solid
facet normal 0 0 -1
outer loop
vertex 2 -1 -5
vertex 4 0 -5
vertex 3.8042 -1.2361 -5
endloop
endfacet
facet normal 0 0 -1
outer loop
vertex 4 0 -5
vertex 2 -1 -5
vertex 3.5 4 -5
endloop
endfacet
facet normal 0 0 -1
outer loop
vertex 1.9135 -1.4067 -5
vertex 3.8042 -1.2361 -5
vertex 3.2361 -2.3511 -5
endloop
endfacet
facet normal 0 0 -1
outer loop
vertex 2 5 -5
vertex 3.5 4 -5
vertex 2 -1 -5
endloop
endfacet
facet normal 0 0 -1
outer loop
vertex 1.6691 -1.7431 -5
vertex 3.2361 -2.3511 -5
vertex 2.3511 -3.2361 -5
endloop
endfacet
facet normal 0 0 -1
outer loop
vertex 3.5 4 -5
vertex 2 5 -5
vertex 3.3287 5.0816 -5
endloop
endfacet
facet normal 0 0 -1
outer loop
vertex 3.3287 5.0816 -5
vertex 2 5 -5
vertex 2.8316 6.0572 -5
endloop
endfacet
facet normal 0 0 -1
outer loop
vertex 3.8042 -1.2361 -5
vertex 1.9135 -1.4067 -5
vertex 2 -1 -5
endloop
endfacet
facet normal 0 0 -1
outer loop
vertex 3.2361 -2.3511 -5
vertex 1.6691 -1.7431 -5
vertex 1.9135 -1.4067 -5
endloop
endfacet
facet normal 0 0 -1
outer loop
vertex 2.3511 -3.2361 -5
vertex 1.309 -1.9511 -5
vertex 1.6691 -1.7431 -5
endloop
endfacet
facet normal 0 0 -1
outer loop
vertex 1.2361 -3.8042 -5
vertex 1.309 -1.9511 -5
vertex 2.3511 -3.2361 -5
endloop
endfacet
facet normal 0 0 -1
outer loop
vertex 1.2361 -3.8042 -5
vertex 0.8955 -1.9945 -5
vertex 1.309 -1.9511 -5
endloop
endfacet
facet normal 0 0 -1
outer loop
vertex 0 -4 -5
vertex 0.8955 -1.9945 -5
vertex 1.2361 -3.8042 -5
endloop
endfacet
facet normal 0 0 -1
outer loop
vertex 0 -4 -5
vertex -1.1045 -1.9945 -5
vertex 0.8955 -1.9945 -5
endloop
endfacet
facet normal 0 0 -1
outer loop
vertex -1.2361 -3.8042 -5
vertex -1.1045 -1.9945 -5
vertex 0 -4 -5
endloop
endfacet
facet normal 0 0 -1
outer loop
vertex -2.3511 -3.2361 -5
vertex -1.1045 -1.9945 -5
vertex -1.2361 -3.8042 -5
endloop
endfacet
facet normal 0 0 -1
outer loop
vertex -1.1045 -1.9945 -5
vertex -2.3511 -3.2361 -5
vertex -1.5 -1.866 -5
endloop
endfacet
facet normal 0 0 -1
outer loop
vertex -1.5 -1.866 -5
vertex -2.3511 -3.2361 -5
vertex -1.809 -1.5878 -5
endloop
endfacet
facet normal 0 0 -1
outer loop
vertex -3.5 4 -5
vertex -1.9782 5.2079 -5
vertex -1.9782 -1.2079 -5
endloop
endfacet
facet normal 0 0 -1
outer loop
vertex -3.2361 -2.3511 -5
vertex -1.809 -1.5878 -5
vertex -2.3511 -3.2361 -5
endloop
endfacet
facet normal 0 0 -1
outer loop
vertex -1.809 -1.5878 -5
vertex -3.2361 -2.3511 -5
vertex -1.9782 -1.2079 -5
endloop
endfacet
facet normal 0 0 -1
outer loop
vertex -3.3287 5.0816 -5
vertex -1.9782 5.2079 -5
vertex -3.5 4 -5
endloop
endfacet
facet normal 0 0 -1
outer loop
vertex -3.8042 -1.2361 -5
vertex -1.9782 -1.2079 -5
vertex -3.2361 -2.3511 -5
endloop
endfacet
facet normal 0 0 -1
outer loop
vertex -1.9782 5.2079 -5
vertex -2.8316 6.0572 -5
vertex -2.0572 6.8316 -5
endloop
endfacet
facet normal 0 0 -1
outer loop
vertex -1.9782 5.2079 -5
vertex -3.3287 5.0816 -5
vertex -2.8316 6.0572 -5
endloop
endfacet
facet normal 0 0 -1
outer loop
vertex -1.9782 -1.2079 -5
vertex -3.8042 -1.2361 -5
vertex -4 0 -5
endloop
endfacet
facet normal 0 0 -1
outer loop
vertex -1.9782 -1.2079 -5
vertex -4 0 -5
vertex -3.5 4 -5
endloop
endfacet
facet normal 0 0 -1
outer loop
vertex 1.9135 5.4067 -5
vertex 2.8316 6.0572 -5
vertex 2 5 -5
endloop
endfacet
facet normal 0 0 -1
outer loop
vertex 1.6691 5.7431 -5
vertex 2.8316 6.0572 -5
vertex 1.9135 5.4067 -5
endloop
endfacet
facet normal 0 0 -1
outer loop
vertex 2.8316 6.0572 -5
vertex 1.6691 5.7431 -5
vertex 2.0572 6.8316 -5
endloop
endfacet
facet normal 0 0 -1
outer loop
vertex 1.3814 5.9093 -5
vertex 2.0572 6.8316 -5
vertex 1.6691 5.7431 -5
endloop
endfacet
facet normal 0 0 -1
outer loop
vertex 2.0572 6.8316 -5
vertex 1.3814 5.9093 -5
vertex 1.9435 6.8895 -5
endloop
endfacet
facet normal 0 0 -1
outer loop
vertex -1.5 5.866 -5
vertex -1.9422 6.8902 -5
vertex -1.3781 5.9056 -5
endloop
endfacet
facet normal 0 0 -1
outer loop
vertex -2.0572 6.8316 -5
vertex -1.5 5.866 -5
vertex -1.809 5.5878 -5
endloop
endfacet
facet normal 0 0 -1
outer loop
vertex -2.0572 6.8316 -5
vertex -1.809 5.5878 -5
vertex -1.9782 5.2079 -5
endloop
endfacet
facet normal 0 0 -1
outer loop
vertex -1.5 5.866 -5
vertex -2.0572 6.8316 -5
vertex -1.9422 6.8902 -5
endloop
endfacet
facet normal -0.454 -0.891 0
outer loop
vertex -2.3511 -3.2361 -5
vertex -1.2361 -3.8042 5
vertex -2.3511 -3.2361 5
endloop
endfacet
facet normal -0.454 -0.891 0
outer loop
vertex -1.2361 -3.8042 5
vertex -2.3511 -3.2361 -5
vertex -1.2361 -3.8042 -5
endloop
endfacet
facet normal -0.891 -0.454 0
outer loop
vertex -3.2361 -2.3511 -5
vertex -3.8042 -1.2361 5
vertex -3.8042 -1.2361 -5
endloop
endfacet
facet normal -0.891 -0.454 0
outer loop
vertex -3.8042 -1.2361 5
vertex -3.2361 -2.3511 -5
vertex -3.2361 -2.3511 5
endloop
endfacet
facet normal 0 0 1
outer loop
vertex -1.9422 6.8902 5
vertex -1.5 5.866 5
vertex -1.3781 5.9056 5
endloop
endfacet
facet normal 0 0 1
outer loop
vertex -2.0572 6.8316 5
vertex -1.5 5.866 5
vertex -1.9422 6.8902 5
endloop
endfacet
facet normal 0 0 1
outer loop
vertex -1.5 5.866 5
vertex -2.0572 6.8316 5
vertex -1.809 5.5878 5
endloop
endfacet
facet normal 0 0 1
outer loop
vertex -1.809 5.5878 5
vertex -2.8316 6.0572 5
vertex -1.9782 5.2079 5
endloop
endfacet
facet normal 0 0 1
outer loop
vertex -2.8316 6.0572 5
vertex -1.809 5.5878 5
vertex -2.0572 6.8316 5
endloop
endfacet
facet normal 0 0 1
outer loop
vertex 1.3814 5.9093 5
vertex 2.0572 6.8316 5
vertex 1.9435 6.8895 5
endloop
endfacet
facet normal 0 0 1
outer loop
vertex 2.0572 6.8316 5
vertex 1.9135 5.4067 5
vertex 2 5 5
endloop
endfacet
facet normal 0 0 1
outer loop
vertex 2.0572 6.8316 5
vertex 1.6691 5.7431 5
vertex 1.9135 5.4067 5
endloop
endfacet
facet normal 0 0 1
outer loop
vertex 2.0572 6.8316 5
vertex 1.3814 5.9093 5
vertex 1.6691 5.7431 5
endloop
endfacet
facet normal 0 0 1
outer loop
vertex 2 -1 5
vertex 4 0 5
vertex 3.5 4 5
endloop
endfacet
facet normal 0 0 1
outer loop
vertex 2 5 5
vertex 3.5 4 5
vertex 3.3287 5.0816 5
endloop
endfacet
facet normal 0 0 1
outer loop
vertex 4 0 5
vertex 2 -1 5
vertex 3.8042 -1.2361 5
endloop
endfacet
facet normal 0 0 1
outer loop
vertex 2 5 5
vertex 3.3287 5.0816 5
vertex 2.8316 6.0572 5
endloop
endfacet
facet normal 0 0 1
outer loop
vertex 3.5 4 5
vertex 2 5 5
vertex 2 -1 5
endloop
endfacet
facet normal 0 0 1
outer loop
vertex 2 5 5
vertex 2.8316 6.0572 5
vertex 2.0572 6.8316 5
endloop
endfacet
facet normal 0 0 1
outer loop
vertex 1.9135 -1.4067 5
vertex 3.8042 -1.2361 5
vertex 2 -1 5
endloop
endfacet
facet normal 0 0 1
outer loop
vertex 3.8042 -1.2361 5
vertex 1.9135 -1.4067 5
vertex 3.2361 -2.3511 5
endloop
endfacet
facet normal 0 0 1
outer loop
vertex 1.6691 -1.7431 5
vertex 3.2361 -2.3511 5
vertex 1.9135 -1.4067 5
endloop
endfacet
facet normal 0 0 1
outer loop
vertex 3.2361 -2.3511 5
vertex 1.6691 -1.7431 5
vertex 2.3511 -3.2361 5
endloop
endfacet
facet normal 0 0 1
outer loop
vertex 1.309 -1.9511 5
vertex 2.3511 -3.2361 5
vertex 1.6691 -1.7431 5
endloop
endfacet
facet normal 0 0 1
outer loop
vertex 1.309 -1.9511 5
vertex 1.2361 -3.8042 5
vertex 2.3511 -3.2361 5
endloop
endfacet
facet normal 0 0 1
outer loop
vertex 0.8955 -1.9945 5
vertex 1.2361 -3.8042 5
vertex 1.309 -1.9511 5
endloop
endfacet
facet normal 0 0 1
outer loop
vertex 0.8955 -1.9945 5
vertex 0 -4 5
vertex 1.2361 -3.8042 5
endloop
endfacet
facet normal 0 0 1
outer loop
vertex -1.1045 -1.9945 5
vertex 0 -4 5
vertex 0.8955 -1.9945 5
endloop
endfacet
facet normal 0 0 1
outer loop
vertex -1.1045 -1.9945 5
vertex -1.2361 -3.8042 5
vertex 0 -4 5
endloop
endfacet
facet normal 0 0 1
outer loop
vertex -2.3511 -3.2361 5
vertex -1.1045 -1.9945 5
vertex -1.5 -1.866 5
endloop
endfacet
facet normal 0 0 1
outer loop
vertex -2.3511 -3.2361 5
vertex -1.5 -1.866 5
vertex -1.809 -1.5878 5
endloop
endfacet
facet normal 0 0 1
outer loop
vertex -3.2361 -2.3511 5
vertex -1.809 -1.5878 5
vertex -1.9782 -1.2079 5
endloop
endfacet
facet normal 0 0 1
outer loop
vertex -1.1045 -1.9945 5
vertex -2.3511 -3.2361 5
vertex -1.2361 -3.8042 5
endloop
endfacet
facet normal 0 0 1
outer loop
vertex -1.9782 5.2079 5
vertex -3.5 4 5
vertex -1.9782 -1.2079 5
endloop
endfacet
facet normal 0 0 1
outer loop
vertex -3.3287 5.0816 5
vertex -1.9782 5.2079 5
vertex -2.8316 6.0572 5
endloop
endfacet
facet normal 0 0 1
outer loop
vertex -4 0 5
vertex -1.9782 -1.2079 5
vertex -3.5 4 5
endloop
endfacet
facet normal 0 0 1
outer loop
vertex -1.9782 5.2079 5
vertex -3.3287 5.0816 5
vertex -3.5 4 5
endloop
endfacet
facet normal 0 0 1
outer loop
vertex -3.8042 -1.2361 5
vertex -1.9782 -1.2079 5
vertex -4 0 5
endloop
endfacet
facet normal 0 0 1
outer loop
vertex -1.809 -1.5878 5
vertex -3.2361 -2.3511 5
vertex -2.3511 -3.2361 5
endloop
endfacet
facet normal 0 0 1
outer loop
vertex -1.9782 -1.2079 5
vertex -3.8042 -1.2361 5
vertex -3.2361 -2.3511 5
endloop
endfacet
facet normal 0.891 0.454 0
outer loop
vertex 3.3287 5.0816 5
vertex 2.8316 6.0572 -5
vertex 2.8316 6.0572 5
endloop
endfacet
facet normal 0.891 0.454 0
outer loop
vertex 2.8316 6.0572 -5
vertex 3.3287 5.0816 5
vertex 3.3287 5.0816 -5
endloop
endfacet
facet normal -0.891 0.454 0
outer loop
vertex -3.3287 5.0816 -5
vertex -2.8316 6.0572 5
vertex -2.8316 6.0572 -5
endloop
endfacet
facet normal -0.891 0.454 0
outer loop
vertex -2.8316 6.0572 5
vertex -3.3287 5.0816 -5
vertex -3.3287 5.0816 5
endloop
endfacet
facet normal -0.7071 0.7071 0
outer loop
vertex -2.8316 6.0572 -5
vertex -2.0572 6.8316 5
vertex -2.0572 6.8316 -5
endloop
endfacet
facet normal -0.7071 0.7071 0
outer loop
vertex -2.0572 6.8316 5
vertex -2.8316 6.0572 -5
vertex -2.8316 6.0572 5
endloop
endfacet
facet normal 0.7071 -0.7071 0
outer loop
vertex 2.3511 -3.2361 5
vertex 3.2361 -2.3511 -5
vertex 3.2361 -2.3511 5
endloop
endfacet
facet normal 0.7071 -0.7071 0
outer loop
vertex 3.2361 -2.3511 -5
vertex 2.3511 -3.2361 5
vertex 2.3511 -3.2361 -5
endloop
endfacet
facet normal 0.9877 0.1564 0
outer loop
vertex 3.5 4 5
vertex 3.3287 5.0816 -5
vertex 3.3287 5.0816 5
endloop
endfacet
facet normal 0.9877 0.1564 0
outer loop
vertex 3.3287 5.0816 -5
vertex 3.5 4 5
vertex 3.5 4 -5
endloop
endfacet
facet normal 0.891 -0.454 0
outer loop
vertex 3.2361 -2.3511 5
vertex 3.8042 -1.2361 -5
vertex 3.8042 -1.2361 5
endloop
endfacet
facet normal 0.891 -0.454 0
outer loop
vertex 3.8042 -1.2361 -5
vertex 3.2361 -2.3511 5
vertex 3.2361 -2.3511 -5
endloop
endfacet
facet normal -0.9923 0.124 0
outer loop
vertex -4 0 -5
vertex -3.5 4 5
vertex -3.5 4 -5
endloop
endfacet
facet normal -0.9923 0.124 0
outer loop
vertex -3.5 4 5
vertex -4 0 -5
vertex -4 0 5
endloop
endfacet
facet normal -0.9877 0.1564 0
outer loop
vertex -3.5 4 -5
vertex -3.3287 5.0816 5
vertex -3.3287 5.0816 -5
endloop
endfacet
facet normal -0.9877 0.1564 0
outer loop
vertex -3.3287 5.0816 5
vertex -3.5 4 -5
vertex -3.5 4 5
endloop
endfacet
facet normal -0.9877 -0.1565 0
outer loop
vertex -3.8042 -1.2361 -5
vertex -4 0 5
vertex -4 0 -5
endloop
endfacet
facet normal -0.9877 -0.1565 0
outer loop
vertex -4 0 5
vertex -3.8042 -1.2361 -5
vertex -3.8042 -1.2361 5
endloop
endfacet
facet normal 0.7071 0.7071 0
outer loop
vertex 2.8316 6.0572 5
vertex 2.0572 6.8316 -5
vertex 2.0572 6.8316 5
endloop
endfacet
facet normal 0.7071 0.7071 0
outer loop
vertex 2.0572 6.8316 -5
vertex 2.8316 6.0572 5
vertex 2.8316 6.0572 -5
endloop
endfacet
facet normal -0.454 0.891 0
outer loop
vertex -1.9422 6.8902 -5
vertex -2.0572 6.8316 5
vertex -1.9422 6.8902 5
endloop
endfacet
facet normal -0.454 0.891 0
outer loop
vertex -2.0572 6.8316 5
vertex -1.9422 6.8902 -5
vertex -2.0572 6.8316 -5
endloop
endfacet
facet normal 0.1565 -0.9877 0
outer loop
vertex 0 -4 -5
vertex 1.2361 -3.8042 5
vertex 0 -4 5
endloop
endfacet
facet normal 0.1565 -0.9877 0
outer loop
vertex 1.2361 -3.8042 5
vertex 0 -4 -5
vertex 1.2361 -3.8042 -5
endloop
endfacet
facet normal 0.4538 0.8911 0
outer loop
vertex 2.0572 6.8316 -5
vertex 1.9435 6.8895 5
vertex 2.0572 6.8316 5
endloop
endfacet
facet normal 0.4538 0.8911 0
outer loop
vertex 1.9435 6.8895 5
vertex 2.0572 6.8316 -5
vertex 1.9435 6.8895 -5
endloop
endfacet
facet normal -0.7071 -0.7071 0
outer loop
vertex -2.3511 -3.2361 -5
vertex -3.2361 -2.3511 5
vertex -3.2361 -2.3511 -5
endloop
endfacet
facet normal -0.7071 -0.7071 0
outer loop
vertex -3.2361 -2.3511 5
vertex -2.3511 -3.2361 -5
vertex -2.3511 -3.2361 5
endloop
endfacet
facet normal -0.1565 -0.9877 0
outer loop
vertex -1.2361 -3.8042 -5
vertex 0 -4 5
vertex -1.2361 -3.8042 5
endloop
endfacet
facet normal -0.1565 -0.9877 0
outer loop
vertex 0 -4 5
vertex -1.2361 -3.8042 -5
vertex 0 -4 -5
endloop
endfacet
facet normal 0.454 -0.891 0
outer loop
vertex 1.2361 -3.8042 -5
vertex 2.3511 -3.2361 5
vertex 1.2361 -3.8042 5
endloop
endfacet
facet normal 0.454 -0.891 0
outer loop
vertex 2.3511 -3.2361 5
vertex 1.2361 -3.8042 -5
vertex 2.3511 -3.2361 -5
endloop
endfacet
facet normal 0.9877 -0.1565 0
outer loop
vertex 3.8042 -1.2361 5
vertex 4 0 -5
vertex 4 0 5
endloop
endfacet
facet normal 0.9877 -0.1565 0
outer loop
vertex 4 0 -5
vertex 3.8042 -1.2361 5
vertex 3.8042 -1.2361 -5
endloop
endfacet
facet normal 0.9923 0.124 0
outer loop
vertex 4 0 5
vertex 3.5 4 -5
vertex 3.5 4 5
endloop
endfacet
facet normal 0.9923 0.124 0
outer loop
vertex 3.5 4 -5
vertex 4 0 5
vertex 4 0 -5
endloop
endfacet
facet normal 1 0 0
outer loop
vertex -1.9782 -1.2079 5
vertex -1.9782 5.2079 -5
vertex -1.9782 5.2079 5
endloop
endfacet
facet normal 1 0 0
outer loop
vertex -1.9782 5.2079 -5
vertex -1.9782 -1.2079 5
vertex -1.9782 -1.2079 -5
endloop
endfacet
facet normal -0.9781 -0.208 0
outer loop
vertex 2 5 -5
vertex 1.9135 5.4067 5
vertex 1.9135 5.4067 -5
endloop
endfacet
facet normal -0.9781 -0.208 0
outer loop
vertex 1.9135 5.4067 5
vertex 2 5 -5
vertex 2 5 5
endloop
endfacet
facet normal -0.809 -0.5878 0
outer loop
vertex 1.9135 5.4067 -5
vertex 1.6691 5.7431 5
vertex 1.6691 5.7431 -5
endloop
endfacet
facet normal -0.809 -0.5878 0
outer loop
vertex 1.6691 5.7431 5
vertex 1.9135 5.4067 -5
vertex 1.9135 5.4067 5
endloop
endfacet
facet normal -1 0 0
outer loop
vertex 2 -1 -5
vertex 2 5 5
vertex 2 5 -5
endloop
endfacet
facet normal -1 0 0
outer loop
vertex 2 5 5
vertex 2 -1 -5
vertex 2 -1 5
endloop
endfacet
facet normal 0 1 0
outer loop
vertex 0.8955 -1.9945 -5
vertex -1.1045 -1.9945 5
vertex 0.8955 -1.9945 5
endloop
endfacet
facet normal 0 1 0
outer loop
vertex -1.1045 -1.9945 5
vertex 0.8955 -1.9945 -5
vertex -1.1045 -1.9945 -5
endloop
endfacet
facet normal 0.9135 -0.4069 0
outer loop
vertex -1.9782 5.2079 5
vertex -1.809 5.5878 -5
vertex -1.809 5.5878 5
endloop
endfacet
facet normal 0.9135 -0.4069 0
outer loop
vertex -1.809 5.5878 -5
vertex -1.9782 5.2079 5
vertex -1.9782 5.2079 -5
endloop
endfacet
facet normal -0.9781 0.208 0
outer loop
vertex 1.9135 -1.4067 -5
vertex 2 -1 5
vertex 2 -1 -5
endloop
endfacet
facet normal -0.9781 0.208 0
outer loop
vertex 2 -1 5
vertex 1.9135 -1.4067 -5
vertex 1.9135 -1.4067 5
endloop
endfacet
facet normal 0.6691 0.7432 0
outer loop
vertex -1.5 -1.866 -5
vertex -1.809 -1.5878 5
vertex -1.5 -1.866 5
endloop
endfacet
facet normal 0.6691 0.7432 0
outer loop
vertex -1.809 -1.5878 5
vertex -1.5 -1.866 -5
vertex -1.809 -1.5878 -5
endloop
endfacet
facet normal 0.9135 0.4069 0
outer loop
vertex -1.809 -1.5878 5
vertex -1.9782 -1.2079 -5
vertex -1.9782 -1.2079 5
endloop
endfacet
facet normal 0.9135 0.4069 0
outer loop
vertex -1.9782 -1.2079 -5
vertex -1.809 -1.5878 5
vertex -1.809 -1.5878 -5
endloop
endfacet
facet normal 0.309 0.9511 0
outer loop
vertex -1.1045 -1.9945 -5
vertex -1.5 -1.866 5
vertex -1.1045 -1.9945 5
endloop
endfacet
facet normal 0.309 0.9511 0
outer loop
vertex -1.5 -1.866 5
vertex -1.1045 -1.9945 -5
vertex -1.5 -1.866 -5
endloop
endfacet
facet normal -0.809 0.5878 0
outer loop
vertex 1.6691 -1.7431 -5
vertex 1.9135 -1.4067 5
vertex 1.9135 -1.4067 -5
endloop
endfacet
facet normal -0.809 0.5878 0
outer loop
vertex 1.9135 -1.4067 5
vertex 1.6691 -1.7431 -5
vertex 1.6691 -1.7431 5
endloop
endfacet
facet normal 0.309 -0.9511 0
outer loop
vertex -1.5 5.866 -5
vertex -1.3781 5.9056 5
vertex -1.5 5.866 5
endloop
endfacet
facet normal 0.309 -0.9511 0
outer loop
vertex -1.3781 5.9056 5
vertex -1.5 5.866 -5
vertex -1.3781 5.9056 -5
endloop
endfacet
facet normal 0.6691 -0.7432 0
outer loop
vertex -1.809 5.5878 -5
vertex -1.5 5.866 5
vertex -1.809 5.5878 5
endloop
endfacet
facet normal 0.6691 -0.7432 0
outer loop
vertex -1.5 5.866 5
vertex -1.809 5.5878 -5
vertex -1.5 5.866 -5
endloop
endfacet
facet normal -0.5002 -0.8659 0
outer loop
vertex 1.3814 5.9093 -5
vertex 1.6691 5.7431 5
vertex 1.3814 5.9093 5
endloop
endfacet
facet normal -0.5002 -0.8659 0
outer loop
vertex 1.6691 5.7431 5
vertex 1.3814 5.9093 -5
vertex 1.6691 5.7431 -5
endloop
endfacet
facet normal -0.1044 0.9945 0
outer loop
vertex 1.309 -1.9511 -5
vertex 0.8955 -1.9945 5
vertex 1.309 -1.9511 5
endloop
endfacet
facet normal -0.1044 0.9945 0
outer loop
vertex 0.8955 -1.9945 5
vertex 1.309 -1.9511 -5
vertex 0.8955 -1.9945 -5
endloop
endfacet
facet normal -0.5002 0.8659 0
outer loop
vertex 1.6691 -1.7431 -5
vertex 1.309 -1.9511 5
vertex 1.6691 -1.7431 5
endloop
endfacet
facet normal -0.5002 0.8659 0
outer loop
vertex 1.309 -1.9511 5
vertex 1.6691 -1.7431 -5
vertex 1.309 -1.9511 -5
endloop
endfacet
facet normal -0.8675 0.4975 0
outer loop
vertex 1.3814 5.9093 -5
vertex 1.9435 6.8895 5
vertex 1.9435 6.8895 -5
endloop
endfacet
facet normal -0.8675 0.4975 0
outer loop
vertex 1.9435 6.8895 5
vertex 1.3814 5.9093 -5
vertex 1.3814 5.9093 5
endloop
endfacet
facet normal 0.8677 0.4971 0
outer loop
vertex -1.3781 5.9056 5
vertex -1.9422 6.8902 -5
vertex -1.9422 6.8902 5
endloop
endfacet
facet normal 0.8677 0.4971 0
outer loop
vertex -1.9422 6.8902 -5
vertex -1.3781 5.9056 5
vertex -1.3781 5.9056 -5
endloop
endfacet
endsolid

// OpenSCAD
$fn = 15;

module wire(args) {
  hull() {
    translate([1,0,0]) cylinder(d=2, h=100, center=true);
    translate([-1,0,0]) cylinder(d=2, h=100, center=true);
  }
}

difference() {
  hull() {
    cylinder(d=8, h=10, center=true, $fn=20);
    translate([0, 4]) cylinder(d=7, h=10, center=true, $fn=20);
  }
  translate([0, 2]) hull() {
    translate([0, -3]) wire();
    translate([0, 3]) wire();
  }
  #translate([0, 8.5]) hull() {
    translate([0, -3]) cylinder(d=2, h=100, center=true);
    translate([0, 1]) cylinder(d=6, h=100, center=true);
  }
}
